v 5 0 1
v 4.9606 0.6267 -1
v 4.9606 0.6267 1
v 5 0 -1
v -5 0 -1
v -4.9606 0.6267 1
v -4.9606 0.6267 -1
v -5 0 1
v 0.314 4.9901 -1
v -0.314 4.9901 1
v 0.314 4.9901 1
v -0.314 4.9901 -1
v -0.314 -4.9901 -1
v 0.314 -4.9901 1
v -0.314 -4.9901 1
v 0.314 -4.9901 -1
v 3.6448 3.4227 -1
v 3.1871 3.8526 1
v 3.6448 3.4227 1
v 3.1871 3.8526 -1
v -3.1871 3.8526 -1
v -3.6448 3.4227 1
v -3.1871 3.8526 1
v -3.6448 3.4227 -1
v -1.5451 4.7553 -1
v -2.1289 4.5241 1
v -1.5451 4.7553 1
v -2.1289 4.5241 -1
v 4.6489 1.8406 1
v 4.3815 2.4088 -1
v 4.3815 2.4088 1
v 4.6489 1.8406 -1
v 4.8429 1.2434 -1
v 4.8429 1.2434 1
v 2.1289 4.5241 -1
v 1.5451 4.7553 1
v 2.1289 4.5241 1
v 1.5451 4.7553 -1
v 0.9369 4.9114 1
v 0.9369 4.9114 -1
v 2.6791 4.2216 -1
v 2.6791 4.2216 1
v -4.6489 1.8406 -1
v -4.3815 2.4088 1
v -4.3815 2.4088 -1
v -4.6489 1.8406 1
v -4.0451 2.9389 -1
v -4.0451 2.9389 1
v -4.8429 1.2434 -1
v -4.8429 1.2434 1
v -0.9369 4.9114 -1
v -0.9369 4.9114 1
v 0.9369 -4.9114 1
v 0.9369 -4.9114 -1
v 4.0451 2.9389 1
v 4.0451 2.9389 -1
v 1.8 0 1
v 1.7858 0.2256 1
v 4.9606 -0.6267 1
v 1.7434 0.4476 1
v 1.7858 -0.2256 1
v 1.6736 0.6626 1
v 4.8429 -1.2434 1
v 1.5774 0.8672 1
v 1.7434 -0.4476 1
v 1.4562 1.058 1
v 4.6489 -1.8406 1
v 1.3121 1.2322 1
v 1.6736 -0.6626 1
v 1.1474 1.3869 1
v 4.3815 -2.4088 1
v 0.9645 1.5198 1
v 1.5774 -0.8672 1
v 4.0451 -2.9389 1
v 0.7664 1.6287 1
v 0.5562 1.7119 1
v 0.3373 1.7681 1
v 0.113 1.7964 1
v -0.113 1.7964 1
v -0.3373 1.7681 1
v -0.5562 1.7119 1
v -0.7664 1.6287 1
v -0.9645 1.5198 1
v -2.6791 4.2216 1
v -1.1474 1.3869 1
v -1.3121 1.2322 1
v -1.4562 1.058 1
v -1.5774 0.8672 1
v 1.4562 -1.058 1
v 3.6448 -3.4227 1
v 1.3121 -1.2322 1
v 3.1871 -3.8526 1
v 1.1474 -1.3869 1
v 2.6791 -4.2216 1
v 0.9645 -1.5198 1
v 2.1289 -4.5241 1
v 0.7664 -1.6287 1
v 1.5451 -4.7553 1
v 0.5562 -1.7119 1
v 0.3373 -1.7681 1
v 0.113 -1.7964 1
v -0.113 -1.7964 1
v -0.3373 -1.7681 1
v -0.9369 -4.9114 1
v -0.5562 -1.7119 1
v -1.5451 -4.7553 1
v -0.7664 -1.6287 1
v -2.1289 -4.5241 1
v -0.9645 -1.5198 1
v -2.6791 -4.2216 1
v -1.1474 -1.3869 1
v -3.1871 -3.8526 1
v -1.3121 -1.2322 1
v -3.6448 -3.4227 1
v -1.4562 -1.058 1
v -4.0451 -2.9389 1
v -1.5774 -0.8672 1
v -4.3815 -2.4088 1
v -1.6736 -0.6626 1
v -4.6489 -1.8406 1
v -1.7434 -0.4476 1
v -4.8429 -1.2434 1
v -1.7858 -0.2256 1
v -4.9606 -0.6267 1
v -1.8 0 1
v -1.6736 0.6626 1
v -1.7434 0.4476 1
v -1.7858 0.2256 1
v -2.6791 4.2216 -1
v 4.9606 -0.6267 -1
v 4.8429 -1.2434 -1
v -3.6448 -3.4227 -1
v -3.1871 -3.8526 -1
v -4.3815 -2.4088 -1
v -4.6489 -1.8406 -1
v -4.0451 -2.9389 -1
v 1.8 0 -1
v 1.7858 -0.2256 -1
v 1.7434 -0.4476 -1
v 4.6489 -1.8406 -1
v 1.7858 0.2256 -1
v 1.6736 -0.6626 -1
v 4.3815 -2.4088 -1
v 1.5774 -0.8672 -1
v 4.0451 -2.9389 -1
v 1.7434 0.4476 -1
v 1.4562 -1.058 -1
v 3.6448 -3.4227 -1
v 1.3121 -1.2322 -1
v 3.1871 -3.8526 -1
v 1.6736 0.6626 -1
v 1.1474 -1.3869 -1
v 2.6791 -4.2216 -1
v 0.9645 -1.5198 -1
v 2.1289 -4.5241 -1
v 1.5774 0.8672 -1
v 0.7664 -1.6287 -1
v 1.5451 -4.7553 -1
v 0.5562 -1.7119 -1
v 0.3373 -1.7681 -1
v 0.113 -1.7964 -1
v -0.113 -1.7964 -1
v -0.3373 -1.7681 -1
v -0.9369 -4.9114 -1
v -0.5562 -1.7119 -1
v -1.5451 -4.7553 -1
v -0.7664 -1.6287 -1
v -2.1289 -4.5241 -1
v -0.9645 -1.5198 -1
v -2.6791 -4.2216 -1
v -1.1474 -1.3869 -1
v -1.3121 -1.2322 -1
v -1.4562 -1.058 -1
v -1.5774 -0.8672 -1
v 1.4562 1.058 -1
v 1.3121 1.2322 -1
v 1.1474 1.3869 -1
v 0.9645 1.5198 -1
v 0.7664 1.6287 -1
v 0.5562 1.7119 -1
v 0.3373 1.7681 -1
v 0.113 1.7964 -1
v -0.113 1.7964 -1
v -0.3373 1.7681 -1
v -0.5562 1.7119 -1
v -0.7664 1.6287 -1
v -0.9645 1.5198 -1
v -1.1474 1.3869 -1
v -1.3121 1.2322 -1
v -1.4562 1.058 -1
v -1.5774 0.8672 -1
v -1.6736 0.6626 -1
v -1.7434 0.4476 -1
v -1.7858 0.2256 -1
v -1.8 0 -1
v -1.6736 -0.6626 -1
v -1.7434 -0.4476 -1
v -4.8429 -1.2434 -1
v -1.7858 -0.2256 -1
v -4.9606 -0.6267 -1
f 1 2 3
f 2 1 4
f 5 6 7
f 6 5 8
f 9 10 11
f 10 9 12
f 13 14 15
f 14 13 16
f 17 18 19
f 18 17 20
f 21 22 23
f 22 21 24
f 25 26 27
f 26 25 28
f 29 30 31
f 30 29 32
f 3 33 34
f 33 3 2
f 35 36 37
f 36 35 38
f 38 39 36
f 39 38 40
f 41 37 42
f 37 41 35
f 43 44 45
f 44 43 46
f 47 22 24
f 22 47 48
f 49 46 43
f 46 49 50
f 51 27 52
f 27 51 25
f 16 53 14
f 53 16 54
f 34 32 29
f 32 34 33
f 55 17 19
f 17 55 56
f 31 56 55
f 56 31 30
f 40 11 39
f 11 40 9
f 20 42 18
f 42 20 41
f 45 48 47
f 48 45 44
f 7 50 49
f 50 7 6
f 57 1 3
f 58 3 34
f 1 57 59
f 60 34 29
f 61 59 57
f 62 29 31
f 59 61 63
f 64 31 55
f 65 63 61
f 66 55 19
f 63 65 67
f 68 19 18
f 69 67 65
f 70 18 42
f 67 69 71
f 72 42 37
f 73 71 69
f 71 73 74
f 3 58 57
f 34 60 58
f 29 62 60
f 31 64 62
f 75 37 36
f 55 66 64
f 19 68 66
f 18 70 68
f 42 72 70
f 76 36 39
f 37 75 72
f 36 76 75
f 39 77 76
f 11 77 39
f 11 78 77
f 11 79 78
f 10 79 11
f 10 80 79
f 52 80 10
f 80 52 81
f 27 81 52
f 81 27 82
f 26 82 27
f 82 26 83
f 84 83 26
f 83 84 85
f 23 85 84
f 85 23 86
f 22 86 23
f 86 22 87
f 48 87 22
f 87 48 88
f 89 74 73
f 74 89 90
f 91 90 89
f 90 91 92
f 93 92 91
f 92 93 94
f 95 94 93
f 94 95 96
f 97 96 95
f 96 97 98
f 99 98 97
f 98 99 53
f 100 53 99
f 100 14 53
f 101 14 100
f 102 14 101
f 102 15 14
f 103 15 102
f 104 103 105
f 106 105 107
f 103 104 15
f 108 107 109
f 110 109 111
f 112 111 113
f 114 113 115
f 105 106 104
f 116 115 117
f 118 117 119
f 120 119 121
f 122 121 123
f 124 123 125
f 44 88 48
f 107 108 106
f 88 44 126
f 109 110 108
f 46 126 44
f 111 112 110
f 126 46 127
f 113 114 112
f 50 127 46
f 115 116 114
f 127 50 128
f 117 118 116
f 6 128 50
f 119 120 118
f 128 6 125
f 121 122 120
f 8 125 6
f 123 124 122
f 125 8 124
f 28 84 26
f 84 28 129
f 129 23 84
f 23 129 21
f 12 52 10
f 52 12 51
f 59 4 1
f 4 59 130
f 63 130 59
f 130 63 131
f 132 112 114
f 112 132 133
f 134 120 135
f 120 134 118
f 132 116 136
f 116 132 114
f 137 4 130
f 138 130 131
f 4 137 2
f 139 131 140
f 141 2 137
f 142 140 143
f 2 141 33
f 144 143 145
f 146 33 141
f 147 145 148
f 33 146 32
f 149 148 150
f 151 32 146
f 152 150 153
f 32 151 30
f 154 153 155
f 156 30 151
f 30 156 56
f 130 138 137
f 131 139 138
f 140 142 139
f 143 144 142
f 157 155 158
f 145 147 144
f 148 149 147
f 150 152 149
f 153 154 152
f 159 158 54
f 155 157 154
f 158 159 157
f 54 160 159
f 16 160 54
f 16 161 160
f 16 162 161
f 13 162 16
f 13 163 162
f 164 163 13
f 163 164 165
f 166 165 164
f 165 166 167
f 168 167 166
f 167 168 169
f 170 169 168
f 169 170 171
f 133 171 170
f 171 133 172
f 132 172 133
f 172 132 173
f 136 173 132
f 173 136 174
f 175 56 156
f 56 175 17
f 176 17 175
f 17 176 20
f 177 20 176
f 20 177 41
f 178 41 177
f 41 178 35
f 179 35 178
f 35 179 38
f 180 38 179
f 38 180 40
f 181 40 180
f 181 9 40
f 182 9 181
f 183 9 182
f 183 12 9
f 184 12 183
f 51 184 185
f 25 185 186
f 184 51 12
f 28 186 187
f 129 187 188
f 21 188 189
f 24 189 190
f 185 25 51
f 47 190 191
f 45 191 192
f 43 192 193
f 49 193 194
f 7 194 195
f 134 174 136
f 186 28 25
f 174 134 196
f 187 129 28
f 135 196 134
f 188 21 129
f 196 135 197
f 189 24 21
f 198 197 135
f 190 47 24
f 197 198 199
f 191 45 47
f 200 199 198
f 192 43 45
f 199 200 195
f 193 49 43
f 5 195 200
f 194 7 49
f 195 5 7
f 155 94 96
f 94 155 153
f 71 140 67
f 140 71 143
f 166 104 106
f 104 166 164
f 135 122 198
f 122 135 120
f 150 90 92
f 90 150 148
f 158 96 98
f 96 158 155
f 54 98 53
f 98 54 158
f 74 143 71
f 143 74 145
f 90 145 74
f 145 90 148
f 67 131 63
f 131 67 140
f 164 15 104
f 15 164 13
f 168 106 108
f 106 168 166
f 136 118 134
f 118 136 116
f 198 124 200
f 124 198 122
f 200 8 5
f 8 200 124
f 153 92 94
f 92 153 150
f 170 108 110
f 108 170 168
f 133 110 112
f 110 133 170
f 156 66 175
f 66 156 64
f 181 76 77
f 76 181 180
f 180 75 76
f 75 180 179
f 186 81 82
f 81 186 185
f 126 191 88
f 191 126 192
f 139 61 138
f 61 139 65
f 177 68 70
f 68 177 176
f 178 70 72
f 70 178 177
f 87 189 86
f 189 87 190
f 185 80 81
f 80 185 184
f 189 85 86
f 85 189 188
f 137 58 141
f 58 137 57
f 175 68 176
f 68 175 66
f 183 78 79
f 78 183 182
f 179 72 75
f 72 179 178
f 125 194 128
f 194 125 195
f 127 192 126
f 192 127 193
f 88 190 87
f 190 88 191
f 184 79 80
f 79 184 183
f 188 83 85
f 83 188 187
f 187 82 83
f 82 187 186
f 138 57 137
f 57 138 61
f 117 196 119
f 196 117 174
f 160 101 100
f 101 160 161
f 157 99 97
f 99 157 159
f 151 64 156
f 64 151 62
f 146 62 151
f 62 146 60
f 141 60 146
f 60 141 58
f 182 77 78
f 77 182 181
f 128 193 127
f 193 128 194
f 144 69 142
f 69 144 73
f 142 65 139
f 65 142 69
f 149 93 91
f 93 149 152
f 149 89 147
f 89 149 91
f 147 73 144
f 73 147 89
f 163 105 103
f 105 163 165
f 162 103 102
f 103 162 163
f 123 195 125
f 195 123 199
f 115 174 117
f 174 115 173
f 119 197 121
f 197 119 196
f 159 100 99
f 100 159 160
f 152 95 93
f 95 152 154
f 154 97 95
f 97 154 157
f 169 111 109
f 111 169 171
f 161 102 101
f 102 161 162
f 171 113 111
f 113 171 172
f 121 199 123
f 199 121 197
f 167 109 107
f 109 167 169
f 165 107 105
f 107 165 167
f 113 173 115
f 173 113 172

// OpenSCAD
$fn = 50;


difference() {
	union() {
		translate(v = [0, 0, -1.0000000000]) {
			cylinder(h = 2, r = 5.0000000000);
		}
	}
	union() {
		translate(v = [0, 0, -100.0000000000]) {
			cylinder(h = 200, r = 1.8000000000);
		}
	}
}
